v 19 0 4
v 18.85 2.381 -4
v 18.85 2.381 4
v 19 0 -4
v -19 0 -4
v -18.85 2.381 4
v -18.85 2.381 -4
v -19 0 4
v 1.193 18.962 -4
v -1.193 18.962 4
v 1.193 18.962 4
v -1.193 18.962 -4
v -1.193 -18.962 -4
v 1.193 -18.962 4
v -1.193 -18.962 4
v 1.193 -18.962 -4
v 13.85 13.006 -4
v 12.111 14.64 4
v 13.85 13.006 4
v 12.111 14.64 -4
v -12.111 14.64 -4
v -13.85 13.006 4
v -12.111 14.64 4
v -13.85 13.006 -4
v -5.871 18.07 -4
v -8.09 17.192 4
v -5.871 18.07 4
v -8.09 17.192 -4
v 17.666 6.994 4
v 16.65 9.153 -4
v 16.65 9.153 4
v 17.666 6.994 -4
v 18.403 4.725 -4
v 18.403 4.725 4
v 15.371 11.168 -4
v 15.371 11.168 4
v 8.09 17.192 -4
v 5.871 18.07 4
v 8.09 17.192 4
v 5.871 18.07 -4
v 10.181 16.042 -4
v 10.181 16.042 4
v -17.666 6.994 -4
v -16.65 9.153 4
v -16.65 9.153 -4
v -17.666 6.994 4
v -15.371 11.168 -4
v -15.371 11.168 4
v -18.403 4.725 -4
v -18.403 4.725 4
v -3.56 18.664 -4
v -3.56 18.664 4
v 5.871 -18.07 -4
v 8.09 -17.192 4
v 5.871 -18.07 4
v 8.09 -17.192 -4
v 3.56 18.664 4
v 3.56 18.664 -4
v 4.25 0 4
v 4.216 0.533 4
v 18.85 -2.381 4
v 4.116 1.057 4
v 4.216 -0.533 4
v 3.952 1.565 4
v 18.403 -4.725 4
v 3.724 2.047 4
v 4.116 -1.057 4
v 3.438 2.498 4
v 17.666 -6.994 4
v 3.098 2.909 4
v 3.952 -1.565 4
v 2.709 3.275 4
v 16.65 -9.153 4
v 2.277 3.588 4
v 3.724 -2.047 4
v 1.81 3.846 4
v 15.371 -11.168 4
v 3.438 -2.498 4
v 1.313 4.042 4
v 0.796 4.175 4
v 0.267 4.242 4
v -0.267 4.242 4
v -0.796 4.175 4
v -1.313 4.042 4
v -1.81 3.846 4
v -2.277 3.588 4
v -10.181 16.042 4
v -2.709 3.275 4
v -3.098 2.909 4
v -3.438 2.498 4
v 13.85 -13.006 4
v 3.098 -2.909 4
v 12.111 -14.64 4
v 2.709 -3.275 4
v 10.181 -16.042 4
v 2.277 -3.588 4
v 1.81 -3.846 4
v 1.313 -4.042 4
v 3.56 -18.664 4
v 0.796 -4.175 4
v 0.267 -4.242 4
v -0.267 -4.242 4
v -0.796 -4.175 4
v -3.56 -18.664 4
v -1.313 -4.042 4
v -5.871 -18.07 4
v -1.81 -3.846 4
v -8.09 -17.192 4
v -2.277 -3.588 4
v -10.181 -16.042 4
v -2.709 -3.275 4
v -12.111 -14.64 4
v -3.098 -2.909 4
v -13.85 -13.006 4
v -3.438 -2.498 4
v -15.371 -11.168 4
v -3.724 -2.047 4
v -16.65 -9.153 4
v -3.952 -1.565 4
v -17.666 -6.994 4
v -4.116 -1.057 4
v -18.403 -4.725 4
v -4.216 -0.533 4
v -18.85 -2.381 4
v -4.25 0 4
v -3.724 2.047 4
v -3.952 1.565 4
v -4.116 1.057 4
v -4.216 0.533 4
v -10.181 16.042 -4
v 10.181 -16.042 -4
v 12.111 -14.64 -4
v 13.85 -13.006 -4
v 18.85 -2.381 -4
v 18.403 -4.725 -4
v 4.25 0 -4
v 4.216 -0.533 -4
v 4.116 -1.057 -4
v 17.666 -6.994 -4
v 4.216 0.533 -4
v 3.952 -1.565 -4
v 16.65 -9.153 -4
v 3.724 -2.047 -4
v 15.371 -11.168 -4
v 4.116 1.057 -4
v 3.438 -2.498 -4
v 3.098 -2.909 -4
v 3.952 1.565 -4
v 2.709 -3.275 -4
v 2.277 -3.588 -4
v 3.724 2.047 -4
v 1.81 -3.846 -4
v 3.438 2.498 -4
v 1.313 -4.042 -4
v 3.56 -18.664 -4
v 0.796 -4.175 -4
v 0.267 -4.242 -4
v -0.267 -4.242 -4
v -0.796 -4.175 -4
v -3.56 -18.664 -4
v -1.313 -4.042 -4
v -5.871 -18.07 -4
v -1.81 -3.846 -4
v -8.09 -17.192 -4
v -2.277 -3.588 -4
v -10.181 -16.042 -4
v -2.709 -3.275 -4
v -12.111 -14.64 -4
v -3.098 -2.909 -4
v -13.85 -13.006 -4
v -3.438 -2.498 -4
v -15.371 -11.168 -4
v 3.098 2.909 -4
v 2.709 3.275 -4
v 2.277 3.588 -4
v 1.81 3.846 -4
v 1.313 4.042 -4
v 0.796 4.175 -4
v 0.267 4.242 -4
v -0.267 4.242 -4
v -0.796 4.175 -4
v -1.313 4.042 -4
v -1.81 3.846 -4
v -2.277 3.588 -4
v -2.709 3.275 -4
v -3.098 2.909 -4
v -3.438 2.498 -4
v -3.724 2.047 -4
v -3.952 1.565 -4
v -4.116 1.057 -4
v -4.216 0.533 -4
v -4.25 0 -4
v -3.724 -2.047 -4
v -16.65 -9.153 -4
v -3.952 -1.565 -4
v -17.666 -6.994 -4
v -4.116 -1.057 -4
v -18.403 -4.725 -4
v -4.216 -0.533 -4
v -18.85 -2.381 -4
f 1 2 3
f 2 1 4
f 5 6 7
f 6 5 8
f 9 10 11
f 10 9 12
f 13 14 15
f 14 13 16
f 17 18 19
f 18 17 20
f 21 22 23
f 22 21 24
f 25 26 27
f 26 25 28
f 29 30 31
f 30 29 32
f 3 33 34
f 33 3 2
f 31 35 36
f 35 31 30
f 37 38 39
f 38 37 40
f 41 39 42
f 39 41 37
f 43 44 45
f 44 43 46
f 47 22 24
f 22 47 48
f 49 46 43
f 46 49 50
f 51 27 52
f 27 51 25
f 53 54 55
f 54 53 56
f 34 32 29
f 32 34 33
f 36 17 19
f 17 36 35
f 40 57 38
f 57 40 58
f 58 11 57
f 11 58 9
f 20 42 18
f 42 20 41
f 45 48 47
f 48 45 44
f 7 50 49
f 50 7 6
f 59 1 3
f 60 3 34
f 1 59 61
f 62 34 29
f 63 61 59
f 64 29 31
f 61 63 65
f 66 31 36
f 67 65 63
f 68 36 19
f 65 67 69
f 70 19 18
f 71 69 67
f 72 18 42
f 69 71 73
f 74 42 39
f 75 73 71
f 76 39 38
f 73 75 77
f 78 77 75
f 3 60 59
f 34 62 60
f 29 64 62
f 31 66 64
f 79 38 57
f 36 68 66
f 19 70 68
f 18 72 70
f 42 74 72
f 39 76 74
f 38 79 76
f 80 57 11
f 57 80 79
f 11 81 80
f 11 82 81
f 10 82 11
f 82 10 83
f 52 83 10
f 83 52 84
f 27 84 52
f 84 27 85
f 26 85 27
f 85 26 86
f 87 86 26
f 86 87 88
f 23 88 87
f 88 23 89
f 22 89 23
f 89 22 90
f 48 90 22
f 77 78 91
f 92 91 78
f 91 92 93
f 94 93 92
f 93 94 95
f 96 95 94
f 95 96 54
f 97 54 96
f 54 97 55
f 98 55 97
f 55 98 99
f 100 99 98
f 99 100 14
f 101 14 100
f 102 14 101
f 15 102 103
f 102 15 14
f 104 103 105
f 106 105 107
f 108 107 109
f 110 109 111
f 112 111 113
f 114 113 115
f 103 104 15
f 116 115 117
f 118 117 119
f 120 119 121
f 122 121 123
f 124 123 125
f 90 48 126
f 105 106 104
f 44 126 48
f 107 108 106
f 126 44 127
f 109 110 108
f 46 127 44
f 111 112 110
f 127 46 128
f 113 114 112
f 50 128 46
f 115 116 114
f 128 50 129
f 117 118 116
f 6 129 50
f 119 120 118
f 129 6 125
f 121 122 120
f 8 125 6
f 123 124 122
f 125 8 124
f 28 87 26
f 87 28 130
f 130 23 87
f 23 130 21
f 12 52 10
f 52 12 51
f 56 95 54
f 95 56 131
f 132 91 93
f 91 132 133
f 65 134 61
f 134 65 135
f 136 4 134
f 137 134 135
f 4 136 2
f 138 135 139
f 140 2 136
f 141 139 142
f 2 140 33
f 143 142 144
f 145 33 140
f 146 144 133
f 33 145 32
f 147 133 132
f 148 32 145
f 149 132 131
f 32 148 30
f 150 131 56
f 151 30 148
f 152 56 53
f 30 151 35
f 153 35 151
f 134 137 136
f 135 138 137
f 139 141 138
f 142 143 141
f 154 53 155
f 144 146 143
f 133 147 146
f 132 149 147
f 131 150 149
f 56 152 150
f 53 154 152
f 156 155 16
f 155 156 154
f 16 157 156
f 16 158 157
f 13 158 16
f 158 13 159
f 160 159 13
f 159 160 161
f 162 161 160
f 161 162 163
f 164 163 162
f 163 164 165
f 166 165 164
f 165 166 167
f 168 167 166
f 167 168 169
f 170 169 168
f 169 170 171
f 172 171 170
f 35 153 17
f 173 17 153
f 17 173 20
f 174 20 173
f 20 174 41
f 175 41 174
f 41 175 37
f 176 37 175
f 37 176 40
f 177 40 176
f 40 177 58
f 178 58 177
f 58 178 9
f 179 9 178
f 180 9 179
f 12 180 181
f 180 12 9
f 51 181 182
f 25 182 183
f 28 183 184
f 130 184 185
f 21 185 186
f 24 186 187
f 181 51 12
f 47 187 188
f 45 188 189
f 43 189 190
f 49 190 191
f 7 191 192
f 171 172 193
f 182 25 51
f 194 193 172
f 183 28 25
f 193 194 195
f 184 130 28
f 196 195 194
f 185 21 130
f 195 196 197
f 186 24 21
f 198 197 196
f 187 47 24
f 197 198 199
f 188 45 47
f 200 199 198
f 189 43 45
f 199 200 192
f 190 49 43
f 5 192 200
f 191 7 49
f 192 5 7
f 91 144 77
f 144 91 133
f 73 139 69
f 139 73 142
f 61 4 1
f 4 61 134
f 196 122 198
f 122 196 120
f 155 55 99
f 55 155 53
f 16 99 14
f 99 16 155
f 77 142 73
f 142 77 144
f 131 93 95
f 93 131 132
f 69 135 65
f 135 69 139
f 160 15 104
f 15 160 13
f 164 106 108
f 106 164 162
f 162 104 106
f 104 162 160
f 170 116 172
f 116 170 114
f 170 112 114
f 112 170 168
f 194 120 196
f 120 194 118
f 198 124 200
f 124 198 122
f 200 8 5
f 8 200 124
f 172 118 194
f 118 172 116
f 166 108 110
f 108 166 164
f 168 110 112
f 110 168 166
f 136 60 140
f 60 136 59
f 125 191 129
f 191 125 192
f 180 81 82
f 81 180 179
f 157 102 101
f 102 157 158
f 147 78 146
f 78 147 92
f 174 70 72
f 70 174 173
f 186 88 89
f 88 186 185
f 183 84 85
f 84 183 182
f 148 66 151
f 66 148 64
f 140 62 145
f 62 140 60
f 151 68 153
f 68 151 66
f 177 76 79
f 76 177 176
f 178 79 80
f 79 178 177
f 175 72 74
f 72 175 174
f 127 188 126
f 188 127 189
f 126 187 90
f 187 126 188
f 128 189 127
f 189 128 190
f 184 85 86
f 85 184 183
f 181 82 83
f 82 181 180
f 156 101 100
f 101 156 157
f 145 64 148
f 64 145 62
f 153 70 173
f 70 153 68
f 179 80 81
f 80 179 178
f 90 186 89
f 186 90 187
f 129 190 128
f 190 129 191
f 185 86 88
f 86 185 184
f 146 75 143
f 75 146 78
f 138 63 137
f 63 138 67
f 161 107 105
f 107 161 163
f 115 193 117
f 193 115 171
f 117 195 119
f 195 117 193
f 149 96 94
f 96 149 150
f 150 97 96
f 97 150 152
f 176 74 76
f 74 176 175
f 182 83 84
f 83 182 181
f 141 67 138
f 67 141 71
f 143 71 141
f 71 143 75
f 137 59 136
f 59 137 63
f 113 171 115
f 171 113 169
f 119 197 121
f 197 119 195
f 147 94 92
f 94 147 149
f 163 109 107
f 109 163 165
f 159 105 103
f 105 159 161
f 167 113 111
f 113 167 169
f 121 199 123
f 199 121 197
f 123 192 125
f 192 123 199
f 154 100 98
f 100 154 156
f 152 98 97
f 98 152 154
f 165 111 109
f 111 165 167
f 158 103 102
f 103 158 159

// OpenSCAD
$fn = 50;


difference() {
	union() {
		translate(v = [0, 0, -4.0000000000]) {
			cylinder(h = 8, r = 19.0000000000);
		}
	}
	union() {
		translate(v = [0, 0, -100.0000000000]) {
			cylinder(h = 200, r = 4.2500000000);
		}
	}
}
